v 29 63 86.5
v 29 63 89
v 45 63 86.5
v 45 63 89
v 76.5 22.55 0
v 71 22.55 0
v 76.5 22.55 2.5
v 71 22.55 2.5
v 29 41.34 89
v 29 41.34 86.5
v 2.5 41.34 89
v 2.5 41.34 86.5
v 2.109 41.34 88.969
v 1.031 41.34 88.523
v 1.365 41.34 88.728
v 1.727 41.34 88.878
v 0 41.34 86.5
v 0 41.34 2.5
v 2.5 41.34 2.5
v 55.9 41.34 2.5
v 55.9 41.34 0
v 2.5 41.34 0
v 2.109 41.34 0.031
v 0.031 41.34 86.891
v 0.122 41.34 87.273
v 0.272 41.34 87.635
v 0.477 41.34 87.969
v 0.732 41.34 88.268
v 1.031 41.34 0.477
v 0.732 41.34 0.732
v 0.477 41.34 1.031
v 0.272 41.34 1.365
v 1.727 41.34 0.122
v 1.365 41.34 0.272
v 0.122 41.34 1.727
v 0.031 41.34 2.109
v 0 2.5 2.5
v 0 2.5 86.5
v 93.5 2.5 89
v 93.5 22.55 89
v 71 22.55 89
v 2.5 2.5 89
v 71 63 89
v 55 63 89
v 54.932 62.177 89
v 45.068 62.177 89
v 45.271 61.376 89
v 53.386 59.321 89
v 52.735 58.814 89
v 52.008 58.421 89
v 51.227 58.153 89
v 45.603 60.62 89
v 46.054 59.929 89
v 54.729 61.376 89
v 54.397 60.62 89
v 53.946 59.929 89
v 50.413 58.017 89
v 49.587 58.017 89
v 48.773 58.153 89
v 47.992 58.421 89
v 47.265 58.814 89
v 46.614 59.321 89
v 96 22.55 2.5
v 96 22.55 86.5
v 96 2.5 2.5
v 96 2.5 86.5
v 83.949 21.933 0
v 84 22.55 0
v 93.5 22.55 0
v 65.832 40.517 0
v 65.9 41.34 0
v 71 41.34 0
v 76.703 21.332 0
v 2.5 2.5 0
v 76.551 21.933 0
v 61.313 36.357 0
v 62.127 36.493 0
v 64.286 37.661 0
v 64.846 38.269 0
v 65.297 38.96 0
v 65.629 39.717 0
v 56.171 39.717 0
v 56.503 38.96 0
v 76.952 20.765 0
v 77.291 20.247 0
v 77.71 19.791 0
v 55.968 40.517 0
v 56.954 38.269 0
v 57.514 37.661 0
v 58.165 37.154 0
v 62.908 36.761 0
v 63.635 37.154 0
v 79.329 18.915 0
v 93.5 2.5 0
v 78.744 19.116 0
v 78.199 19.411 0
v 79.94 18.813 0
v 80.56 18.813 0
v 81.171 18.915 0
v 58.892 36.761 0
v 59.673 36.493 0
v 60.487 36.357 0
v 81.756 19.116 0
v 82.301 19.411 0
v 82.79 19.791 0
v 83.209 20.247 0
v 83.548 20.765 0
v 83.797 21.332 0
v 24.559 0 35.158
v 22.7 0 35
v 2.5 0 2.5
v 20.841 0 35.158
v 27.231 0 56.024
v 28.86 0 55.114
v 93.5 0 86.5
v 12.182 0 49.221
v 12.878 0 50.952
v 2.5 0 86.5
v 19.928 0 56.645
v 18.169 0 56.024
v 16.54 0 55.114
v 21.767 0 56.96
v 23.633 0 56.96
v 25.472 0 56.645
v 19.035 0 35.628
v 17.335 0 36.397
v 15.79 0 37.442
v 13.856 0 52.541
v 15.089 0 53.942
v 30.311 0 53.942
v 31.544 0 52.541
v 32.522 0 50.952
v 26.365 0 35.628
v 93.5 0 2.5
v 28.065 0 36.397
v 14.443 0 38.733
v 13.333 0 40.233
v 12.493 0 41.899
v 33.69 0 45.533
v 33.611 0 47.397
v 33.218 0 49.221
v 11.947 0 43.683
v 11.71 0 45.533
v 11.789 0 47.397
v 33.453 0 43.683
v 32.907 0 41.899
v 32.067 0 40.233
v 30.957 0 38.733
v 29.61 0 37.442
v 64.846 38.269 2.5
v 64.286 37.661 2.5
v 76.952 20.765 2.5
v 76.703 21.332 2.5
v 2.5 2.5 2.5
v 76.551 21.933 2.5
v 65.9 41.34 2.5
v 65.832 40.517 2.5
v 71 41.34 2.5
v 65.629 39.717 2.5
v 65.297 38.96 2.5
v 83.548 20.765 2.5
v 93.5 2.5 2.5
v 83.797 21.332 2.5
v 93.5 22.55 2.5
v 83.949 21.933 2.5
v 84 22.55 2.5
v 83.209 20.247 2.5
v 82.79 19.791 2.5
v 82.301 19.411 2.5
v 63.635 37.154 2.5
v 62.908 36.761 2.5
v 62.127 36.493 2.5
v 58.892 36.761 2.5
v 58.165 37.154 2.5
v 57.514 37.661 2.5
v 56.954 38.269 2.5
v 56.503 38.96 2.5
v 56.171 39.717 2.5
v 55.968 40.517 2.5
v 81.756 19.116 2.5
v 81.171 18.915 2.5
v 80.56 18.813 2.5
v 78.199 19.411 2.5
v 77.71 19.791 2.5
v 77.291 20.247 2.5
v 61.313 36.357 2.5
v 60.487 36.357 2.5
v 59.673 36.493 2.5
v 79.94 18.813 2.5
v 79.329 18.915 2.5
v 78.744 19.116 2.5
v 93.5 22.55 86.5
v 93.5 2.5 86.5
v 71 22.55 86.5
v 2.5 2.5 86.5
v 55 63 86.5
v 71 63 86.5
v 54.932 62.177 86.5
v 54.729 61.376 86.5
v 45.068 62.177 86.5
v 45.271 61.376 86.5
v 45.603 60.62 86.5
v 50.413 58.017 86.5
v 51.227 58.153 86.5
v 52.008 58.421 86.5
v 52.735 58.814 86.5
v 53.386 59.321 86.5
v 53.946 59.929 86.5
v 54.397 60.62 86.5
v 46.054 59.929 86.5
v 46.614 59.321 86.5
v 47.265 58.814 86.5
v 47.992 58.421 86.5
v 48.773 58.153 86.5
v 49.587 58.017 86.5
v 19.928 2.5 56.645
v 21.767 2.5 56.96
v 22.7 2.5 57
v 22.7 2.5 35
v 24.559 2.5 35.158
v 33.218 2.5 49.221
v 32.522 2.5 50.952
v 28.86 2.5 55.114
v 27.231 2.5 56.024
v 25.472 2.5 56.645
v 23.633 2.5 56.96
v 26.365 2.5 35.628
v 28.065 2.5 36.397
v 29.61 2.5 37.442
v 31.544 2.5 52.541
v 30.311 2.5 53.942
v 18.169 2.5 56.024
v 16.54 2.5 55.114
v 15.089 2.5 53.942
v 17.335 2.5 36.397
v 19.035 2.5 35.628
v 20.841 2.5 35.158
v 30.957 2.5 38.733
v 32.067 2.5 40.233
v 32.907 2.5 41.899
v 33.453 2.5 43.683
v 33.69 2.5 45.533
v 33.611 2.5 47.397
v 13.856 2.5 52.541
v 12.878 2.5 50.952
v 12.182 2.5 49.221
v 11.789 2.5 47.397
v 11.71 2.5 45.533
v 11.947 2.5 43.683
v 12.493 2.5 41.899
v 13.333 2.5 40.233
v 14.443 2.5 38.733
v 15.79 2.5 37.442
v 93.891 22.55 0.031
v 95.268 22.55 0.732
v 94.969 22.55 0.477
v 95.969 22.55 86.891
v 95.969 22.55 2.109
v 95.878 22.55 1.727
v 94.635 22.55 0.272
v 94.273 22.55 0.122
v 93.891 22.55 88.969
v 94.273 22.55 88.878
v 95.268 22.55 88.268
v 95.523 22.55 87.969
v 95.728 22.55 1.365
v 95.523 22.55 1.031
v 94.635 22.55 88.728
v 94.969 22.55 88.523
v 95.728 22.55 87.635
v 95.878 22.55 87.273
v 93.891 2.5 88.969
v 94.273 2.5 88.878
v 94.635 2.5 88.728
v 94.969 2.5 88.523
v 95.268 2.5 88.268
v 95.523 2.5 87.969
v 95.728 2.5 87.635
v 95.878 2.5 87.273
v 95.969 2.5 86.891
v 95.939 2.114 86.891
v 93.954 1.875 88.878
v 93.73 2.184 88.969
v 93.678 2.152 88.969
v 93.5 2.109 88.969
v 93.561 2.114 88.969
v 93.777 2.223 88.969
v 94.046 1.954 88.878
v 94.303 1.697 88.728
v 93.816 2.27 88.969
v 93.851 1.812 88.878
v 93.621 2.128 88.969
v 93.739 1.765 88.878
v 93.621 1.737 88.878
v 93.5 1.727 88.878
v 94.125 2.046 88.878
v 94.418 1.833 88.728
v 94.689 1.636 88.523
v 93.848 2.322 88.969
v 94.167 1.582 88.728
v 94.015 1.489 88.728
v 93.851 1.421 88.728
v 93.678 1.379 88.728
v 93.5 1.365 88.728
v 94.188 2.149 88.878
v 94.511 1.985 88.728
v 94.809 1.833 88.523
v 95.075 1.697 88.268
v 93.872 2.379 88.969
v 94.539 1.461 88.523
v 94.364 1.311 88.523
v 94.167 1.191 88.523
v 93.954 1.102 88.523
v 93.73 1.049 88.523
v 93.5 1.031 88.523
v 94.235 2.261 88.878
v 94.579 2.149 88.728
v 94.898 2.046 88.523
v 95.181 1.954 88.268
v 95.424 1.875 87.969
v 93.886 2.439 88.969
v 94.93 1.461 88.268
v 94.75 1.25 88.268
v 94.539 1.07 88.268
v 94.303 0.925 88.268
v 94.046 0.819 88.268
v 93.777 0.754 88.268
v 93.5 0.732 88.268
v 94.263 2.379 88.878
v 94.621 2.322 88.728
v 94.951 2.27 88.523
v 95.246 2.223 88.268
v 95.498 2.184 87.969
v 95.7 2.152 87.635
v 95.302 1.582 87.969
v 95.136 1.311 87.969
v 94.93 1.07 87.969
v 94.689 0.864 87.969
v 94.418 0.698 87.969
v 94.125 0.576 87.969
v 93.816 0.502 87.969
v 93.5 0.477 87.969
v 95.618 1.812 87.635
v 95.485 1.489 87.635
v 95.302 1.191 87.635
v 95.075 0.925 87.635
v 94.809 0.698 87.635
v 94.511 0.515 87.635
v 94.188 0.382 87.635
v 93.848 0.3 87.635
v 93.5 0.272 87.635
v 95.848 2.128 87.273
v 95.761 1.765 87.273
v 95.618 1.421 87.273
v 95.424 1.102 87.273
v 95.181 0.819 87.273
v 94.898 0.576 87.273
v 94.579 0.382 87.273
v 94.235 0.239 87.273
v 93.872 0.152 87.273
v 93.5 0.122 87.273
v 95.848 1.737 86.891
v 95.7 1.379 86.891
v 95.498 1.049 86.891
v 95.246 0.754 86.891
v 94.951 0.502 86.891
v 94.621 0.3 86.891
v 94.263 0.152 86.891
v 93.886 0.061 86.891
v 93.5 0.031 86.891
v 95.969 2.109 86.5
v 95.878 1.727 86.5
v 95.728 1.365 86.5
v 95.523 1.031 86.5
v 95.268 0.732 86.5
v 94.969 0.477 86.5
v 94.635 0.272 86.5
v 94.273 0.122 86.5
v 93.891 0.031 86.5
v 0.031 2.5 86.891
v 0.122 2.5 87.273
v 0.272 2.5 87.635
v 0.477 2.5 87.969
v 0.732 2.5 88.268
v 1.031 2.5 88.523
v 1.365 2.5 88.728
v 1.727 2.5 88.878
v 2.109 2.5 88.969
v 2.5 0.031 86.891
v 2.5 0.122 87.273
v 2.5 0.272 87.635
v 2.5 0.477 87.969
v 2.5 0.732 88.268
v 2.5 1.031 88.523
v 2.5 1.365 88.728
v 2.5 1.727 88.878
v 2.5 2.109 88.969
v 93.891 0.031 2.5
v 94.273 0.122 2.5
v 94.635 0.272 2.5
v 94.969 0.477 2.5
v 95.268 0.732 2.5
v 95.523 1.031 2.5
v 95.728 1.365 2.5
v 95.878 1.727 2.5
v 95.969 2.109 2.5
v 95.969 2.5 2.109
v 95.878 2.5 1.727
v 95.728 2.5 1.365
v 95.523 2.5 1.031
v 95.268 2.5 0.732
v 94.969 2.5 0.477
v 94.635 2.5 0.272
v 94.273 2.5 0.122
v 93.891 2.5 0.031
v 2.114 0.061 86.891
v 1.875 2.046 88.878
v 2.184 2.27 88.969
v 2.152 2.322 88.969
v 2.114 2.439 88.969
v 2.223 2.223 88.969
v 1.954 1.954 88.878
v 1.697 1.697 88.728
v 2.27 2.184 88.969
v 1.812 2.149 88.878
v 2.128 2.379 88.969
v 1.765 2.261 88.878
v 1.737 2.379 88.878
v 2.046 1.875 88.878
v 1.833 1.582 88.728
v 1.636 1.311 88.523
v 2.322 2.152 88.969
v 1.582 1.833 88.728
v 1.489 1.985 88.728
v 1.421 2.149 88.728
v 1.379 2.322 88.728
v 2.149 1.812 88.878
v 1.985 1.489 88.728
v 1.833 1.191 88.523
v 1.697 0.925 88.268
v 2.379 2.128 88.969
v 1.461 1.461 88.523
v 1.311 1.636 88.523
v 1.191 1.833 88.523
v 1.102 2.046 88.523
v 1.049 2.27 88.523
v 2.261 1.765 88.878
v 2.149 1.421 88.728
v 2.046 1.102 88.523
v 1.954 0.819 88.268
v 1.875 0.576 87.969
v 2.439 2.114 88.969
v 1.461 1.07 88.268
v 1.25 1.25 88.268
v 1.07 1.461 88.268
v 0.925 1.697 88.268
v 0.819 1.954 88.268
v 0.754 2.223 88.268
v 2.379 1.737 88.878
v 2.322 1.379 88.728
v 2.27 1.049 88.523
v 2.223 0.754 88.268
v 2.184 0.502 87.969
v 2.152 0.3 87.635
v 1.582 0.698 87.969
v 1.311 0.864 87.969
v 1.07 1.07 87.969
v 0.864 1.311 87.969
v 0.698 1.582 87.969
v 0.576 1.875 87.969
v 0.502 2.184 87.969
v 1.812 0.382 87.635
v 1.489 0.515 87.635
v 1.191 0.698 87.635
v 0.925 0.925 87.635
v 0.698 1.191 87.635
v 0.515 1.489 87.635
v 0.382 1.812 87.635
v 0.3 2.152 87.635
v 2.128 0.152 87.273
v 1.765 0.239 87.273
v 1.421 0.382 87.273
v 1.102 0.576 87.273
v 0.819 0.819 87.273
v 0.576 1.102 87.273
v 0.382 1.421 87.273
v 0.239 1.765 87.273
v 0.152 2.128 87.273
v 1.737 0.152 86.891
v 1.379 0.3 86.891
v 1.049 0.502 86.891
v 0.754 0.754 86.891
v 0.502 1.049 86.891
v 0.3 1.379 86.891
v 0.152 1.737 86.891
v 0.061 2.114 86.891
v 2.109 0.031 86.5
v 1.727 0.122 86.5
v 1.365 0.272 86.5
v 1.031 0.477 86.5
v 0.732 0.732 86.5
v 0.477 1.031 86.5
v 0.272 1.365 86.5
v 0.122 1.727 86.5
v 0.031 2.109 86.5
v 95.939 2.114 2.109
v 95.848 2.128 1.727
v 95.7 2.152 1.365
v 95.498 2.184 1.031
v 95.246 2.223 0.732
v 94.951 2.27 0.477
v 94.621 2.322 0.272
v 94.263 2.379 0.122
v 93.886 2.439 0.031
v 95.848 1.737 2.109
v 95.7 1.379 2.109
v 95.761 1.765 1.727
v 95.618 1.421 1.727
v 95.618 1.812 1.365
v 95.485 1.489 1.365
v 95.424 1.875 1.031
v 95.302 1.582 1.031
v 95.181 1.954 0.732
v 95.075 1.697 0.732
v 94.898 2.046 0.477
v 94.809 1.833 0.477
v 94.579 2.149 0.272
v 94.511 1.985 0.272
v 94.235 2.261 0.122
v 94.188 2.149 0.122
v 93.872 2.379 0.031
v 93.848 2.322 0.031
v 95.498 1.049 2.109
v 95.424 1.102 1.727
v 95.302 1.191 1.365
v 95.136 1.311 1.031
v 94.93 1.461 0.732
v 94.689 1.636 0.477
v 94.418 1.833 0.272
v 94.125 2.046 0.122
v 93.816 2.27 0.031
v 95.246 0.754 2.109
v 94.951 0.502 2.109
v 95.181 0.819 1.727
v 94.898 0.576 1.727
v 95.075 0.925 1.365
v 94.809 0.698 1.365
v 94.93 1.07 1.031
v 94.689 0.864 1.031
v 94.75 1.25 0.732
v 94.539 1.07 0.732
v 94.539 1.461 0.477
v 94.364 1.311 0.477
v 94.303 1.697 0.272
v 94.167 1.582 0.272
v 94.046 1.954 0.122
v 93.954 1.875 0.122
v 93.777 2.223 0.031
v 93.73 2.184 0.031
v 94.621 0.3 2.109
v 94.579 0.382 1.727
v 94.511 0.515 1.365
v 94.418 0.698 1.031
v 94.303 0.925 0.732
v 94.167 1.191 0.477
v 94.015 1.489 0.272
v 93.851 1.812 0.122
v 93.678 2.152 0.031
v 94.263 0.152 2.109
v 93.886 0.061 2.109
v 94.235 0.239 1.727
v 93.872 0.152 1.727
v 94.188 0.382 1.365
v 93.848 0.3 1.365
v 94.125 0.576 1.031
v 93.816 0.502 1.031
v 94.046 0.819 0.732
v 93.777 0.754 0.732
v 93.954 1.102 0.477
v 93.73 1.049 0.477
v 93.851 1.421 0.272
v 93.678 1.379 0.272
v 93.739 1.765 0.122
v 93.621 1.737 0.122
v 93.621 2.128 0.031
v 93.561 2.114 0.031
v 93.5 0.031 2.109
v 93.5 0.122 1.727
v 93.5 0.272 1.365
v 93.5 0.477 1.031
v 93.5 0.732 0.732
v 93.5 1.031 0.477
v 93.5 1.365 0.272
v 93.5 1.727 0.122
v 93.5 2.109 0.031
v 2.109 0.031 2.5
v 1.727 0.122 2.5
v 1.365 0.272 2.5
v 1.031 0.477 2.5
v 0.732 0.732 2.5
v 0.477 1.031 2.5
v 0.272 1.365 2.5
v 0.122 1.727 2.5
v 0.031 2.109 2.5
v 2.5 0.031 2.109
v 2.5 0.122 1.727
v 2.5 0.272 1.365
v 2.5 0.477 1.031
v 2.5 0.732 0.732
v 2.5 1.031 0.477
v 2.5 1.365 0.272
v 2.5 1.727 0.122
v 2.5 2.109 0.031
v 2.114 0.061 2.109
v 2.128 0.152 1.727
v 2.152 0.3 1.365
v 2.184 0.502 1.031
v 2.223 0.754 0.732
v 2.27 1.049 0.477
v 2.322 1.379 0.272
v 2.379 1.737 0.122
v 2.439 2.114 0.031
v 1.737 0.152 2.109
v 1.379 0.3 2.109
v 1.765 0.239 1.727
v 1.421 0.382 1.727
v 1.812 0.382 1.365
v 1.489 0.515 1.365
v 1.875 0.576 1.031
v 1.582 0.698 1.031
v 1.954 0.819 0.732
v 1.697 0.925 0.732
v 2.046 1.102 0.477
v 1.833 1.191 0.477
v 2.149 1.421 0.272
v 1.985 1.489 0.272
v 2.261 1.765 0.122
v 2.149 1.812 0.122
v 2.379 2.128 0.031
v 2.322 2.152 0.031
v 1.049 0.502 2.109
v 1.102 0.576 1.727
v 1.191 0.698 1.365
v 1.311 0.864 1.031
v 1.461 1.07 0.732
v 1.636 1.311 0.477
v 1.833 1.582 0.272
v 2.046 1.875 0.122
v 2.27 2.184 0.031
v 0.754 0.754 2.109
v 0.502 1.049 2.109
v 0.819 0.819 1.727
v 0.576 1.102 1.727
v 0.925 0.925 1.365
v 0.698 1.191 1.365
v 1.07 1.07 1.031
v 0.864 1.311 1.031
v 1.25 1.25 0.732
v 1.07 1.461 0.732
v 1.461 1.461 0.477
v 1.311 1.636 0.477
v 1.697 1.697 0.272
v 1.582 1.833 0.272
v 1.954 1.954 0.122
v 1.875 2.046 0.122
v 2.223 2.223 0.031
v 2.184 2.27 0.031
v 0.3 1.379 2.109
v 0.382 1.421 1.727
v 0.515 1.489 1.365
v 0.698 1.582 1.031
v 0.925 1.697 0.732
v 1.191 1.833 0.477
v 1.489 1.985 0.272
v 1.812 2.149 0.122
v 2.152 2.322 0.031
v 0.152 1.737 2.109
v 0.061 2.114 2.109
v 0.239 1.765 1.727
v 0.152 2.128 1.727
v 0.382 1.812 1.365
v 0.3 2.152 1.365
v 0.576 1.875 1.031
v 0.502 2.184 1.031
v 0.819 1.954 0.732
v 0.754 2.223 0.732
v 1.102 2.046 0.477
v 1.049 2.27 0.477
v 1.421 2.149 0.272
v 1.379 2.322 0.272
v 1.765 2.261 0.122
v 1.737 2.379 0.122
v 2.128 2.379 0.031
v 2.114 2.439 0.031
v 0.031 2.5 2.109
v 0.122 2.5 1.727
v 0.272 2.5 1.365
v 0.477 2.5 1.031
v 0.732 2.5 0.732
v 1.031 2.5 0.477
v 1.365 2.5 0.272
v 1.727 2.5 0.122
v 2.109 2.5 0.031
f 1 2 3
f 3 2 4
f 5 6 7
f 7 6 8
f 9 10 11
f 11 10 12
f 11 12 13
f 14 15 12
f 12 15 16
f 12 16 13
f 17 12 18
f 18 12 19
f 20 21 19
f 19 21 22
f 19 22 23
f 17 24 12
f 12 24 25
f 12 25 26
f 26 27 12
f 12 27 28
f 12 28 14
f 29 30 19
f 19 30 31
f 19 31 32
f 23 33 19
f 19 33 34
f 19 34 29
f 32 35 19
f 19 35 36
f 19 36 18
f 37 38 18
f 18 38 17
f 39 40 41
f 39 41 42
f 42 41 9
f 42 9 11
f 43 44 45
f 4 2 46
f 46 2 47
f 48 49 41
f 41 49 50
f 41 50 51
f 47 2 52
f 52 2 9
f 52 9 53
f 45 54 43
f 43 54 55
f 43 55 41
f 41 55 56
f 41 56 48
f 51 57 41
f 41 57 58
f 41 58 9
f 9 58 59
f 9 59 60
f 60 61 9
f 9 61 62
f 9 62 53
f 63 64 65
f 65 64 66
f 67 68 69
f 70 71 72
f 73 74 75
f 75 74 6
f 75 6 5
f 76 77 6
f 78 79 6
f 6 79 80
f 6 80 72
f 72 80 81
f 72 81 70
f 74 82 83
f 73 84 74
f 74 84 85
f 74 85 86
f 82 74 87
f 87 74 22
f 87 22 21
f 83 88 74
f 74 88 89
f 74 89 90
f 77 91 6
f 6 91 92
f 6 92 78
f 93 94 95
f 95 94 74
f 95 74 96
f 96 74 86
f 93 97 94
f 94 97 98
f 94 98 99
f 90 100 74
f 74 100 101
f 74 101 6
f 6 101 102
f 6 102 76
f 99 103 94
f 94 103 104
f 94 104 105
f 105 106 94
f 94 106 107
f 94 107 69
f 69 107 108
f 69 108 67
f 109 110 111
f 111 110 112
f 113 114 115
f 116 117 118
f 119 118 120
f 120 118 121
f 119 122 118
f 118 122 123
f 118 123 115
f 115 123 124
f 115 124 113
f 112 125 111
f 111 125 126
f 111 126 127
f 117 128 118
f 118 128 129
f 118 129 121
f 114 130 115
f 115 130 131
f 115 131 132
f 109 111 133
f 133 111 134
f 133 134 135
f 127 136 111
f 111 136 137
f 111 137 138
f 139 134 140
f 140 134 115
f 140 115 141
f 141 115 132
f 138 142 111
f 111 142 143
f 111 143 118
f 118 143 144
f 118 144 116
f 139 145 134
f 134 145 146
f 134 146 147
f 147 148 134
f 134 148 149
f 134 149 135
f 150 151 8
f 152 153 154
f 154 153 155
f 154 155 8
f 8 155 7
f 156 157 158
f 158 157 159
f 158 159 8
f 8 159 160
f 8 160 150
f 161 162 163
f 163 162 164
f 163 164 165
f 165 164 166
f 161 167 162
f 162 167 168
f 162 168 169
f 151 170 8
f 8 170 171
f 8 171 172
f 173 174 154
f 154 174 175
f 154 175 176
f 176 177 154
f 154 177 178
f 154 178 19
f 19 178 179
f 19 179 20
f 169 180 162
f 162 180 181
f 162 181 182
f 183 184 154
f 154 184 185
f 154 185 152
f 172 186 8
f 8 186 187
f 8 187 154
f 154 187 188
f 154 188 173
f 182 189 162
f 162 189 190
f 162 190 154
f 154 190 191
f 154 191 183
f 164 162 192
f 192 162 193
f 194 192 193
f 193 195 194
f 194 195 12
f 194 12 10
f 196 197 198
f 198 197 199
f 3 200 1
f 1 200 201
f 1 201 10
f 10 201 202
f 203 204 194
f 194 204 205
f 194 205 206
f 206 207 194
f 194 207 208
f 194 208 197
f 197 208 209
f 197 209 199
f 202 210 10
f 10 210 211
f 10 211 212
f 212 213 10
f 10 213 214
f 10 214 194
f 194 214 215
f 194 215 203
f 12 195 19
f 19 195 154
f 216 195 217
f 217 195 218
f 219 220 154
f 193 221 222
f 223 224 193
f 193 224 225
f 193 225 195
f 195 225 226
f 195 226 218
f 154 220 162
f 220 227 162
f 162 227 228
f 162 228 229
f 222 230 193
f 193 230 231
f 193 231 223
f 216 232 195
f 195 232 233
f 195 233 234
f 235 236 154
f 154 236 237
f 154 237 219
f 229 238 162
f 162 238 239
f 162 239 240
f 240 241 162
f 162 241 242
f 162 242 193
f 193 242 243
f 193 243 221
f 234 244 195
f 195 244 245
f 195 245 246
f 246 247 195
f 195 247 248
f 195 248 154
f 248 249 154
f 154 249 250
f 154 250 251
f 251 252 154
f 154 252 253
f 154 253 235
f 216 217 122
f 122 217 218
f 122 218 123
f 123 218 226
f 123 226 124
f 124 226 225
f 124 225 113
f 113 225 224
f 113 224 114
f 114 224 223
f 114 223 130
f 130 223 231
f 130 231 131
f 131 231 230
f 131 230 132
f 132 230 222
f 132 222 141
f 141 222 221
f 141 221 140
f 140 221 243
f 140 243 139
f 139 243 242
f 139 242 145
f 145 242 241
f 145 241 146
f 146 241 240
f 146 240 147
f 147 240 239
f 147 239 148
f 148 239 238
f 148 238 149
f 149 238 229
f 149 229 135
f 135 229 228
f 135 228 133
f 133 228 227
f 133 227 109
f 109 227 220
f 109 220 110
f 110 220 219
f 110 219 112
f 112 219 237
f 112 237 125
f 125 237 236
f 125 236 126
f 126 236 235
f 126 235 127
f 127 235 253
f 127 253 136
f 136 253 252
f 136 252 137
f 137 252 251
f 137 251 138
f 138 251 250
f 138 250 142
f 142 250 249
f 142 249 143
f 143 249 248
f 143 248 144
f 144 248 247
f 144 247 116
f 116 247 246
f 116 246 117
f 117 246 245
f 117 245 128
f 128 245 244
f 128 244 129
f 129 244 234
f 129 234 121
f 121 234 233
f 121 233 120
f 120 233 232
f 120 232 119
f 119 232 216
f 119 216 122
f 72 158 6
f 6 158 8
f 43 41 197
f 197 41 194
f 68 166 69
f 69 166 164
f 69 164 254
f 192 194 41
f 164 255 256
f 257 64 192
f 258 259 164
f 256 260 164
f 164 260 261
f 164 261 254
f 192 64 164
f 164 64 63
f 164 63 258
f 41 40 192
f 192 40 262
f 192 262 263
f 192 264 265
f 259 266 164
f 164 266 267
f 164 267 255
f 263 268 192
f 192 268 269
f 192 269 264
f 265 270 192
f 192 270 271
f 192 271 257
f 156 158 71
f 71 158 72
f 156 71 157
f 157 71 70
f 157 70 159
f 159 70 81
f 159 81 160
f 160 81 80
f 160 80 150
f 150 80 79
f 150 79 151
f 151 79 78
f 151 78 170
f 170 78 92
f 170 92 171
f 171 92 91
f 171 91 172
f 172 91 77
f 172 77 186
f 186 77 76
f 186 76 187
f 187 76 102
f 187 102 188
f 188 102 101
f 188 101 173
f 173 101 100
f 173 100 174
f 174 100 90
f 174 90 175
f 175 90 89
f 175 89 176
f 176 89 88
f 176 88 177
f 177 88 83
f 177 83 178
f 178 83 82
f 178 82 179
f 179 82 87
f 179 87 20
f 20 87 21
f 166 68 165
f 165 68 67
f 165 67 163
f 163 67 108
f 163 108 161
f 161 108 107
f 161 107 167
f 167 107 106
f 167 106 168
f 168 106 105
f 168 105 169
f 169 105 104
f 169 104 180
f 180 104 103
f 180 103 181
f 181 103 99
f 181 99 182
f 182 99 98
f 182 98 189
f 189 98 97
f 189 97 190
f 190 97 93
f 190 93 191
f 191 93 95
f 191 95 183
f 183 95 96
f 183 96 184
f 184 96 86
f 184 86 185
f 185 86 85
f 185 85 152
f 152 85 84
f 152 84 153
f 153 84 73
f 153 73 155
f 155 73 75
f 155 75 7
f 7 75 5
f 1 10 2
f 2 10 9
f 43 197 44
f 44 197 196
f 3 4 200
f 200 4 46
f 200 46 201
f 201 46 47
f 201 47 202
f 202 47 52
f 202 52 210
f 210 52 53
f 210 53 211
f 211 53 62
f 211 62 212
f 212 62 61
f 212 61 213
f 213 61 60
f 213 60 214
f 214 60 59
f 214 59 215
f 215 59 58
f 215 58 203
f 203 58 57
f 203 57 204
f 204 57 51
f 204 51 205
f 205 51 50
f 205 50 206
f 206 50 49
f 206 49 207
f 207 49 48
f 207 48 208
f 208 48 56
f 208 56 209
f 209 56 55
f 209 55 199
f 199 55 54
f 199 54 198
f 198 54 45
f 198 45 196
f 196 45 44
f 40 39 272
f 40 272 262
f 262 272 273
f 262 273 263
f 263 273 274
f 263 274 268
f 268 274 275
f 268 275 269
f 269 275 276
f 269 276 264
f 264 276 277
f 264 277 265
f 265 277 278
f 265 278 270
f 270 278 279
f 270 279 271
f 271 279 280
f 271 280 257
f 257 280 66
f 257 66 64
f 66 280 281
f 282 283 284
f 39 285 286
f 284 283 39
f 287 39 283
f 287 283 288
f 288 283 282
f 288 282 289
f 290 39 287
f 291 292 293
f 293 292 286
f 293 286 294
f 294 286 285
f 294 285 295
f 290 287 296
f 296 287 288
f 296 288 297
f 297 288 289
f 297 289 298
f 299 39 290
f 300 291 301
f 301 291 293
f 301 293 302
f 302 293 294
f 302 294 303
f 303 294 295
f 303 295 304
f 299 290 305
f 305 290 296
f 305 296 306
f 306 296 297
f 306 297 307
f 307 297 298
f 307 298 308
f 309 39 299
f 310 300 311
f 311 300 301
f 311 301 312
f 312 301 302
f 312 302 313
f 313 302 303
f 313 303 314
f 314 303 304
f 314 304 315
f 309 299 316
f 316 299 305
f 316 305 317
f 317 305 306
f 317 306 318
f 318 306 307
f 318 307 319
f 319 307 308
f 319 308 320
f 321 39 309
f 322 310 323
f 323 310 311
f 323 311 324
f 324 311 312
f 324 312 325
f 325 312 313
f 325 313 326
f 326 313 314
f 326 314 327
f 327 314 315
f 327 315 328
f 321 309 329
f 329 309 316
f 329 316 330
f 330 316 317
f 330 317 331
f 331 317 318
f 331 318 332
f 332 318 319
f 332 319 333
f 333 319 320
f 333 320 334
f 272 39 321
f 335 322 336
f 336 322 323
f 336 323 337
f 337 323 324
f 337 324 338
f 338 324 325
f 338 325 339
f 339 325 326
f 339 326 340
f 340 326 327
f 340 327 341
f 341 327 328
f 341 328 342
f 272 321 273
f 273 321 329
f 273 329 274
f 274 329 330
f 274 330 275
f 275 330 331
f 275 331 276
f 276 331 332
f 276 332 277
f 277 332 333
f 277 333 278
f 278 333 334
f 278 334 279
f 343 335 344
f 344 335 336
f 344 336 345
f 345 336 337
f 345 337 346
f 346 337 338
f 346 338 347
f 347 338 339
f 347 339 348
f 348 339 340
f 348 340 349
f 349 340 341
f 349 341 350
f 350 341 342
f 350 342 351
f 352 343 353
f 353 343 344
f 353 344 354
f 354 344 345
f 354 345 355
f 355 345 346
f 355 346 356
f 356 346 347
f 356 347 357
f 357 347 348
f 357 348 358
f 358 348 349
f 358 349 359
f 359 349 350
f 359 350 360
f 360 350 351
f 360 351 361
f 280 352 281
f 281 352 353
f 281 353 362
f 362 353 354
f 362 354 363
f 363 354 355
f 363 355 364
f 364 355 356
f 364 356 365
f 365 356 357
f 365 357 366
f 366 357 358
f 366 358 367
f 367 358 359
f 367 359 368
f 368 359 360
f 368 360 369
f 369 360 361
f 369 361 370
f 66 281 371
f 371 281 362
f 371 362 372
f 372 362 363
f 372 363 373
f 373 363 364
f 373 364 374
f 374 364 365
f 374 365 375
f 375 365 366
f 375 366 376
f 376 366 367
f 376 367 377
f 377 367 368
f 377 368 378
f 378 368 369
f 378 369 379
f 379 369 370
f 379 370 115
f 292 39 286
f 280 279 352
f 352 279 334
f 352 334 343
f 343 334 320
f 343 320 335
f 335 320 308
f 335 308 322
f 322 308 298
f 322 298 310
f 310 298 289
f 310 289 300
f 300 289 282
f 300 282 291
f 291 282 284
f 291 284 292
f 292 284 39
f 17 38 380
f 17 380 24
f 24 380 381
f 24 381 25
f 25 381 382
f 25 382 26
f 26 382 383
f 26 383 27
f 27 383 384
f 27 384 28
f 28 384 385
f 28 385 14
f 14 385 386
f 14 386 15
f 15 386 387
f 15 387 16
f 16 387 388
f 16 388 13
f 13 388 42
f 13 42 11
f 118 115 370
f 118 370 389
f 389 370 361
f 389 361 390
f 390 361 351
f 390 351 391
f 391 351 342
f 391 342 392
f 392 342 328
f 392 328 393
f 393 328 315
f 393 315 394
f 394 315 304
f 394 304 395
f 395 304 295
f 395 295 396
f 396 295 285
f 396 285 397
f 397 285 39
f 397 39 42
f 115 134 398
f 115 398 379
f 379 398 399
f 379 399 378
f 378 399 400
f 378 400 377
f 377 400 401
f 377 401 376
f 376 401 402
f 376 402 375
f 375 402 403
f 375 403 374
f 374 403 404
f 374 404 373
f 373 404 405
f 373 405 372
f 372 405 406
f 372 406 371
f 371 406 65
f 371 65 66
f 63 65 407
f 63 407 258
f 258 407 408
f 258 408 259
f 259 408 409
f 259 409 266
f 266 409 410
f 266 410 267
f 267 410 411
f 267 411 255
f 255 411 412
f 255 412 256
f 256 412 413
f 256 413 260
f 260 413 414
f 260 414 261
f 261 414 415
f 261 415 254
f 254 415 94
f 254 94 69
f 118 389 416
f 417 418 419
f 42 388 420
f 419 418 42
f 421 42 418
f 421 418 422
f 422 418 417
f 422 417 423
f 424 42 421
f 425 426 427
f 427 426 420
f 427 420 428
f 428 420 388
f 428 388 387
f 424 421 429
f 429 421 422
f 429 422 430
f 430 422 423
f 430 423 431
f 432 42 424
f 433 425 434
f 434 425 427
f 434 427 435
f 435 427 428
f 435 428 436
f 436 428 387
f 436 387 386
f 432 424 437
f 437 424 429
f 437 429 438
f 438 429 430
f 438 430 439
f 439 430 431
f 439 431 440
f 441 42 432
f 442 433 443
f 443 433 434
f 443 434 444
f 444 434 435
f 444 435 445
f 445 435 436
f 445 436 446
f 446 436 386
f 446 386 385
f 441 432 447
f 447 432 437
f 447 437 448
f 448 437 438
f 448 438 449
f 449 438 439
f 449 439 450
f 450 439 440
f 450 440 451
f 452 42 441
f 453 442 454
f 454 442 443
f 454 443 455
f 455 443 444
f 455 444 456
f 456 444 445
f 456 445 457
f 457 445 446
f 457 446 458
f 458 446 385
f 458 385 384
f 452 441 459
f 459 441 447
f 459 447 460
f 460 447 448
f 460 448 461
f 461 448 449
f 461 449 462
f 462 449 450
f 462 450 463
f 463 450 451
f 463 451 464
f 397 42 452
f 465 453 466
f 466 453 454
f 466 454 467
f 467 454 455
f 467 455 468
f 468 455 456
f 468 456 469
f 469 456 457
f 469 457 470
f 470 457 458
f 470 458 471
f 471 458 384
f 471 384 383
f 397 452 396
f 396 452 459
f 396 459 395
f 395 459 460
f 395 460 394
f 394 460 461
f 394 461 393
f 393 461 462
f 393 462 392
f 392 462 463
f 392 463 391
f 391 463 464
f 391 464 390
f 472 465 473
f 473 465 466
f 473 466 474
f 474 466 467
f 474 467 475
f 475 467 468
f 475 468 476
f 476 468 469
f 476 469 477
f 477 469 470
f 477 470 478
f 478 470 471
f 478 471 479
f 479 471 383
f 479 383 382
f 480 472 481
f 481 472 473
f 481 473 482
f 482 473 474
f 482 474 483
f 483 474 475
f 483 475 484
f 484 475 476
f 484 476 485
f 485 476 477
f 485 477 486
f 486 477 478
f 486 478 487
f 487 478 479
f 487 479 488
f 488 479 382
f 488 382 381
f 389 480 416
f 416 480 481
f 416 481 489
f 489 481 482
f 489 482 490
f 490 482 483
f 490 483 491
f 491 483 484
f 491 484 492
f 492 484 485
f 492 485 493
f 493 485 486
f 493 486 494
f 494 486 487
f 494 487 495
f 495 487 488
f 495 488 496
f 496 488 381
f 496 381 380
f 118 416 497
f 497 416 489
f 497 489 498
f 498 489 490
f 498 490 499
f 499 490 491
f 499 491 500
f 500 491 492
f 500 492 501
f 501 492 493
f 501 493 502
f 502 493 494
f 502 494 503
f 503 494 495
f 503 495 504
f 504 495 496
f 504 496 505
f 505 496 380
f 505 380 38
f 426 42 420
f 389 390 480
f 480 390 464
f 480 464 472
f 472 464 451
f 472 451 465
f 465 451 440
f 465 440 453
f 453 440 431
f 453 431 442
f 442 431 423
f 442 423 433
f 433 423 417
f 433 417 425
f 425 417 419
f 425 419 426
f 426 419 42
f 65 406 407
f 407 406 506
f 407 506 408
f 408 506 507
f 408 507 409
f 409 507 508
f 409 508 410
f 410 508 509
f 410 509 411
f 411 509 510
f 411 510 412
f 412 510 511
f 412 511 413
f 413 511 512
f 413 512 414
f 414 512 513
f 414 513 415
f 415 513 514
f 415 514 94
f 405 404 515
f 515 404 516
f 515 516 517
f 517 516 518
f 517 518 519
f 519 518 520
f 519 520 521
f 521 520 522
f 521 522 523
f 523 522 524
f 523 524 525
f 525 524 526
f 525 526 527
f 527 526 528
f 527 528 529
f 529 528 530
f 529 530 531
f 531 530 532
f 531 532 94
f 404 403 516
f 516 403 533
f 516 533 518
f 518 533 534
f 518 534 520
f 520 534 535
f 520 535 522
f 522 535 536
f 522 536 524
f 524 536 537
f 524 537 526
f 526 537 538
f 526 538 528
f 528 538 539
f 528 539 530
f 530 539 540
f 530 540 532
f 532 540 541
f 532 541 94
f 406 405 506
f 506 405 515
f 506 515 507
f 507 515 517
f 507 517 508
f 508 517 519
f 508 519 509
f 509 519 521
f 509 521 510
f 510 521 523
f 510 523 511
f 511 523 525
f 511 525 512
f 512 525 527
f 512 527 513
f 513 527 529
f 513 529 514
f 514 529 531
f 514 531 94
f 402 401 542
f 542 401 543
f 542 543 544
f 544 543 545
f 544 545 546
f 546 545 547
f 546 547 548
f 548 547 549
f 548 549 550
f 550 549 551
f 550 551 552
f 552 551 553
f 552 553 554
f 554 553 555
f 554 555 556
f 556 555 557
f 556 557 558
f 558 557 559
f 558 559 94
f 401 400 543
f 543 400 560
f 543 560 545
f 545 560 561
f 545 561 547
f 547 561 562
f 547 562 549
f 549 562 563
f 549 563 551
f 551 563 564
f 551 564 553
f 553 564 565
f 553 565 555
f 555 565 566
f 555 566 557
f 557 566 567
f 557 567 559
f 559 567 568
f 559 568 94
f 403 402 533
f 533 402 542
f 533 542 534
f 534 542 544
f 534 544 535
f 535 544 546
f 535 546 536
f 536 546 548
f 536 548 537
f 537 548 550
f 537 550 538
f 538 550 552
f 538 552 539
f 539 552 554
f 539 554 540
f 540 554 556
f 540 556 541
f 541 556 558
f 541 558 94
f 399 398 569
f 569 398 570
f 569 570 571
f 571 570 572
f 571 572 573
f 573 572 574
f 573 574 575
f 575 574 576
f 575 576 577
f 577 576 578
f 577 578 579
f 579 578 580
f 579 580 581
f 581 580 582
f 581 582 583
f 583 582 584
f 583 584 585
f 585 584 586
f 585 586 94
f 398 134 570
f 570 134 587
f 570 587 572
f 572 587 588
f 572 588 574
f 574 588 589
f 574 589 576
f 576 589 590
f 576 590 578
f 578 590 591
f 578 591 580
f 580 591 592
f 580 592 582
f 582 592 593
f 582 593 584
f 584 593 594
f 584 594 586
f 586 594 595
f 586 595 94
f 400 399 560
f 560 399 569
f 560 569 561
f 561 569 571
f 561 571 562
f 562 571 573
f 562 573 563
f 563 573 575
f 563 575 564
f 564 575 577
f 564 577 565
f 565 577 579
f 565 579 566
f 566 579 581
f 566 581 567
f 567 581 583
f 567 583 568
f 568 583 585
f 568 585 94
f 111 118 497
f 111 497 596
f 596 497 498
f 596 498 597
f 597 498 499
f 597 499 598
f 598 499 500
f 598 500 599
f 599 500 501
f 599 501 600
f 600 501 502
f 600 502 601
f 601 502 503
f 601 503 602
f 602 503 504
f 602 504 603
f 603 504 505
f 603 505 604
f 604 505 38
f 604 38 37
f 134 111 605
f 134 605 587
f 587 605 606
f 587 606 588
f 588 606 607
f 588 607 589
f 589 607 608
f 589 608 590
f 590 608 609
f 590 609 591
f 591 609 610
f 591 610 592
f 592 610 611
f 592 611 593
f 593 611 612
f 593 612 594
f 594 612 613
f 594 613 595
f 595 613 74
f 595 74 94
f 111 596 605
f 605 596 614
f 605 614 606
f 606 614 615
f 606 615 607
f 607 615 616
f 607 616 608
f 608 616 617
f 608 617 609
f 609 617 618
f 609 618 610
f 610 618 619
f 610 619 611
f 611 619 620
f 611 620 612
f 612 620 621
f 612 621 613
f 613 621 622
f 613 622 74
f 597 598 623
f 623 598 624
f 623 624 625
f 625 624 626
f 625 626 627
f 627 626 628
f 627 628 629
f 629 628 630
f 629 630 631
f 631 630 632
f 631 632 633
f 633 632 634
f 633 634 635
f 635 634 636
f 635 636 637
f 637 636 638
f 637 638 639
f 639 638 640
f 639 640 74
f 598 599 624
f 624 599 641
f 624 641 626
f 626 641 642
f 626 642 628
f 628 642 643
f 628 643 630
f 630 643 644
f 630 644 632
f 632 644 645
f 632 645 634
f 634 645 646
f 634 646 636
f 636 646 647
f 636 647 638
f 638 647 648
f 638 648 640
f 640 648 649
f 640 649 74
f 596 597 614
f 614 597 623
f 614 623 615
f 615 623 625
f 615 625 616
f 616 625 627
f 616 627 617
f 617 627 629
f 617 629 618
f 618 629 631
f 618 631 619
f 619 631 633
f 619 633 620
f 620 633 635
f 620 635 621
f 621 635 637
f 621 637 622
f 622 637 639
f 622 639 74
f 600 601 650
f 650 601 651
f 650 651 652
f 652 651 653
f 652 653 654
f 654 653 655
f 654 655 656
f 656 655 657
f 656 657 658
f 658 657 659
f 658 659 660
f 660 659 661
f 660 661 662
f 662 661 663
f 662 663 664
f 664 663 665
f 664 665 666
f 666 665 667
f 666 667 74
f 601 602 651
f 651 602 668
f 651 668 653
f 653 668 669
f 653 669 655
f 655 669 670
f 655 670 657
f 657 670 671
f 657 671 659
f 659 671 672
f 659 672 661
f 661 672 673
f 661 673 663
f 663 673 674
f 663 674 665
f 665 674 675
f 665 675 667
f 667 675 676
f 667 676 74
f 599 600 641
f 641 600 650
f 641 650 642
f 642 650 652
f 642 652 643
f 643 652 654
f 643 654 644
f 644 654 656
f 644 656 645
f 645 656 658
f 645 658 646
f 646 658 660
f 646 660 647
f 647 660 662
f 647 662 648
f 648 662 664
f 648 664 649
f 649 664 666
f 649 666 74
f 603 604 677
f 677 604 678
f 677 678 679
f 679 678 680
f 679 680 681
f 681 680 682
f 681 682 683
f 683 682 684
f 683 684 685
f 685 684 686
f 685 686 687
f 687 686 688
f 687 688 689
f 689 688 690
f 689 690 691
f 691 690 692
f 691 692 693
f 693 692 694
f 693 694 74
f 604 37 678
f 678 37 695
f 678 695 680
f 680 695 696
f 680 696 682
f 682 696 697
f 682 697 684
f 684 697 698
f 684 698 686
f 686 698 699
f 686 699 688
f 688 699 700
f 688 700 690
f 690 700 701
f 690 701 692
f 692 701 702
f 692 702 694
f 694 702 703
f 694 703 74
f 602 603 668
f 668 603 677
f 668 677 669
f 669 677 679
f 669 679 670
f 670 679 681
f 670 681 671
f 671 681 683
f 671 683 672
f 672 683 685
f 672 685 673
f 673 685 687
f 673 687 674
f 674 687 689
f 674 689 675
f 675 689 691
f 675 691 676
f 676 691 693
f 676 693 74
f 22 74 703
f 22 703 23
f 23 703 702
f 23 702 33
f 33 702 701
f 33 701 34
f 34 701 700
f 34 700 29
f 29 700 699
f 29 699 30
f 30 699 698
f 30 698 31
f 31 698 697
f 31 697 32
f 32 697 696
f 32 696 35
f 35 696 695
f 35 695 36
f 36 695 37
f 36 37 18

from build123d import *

# Parameters (mm, degrees)
SKETCH1_W           = 96
SKETCH1_H           = 89
BOSS_EXTRUDE1_DEPTH = 72.5
SKETCH3_W           = 91
SKETCH3_H           = 84
CUT_EXTRUDE1_DEPTH  = 70
SKETCH4_R           = 11
CUT_EXTRUDE3_DEPTH  = 10
CUT_EXTRUDE4_DEPTH  = 90
CUT_EXTRUDE5_DEPTH  = 10
SKETCH8_W           = 42
SKETCH8_H           = 21.66
BOSS_EXTRUDE2_DEPTH = 2.5
CUT_EXTRUDE6_DEPTH  = 2.5
FILLET1_R           = 2.5


with BuildPart() as part:
    # Sketch1 → Boss-Extrude1 (new body)
    with BuildSketch(Plane(origin=(0, 0, 0), x_dir=(1, 0, 0), z_dir=(0, 1, 0))):
        with Locations((48, -44.5)):
            Rectangle(SKETCH1_W, SKETCH1_H)
    extrude(amount=BOSS_EXTRUDE1_DEPTH)

    # Sketch3 → Cut-Extrude1 (cut)
    with BuildSketch(Plane(origin=(0, 72.5, 0), x_dir=(1, 0, 0), z_dir=(0, 1, 0))):
        with Locations((48, -44.5)):
            Rectangle(SKETCH3_W, SKETCH3_H)
    extrude(amount=-CUT_EXTRUDE1_DEPTH, mode=Mode.SUBTRACT)

    # Sketch4 → Cut-Extrude3 (cut)
    with BuildSketch(Plane.XZ):
        with Locations((22.7, 46)):
            Circle(SKETCH4_R)
    extrude(amount=-CUT_EXTRUDE3_DEPTH, mode=Mode.SUBTRACT)

    # Sketch6 → Cut-Extrude4 (cut, through all)
    with BuildSketch(Plane(origin=(0, 0, 0), x_dir=(-1, 0, 0), z_dir=(0, 0, -1))):
        Polygon((-96, 22.55), (-71, 22.55), (-71, 41.34), (0, 41.34), (0, 72.5), (-96, 72.5), align=None)
    extrude(amount=-CUT_EXTRUDE4_DEPTH, mode=Mode.SUBTRACT)

    # Sketch7 → Cut-Extrude5 (cut)
    with BuildSketch(Plane(origin=(0, 0, 0), x_dir=(-1, 0, 0), z_dir=(0, 0, -1))):
        with BuildLine():
            Line((-84, 22.55), (-76.5, 22.55))
            ThreePointArc((-76.5, 22.55), (-80.25, 18.8), (-84, 22.55))
        make_face()
        with BuildLine():
            Line((-65.9, 41.34), (-55.9, 41.34))
            ThreePointArc((-55.9, 41.34), (-60.9, 36.34), (-65.9, 41.34))
        make_face()
    extrude(amount=-CUT_EXTRUDE5_DEPTH, mode=Mode.SUBTRACT)

    # Sketch8 → Boss-Extrude2 (add)
    with BuildSketch(Plane.XY.offset(89)):
        with Locations((50, 52.17)):
            Rectangle(SKETCH8_W, SKETCH8_H)
    extrude(amount=-BOSS_EXTRUDE2_DEPTH)

    # Sketch9 → Cut-Extrude6 (cut)
    with BuildSketch(Plane.XY.offset(89)):
        with BuildLine():
            Line((45, 63), (55, 63))
            ThreePointArc((55, 63), (50, 58), (45, 63))
        make_face()
    extrude(amount=-CUT_EXTRUDE6_DEPTH, mode=Mode.SUBTRACT)

    # Fillet1
    fillet1_edges = [part.edges().sort_by_distance(p)[0] for p in [
        (0, 20.67, 0),
        (96, 11.275, 0),
        (96, 11.275, 89),
        (0, 20.67, 89),
        (48, 0, 0),
        (96, 0, 44.5),
        (48, 0, 89),
        (0, 0, 44.5),
    ]]
    fillet(fillet1_edges, radius=FILLET1_R)


solid = part.part
